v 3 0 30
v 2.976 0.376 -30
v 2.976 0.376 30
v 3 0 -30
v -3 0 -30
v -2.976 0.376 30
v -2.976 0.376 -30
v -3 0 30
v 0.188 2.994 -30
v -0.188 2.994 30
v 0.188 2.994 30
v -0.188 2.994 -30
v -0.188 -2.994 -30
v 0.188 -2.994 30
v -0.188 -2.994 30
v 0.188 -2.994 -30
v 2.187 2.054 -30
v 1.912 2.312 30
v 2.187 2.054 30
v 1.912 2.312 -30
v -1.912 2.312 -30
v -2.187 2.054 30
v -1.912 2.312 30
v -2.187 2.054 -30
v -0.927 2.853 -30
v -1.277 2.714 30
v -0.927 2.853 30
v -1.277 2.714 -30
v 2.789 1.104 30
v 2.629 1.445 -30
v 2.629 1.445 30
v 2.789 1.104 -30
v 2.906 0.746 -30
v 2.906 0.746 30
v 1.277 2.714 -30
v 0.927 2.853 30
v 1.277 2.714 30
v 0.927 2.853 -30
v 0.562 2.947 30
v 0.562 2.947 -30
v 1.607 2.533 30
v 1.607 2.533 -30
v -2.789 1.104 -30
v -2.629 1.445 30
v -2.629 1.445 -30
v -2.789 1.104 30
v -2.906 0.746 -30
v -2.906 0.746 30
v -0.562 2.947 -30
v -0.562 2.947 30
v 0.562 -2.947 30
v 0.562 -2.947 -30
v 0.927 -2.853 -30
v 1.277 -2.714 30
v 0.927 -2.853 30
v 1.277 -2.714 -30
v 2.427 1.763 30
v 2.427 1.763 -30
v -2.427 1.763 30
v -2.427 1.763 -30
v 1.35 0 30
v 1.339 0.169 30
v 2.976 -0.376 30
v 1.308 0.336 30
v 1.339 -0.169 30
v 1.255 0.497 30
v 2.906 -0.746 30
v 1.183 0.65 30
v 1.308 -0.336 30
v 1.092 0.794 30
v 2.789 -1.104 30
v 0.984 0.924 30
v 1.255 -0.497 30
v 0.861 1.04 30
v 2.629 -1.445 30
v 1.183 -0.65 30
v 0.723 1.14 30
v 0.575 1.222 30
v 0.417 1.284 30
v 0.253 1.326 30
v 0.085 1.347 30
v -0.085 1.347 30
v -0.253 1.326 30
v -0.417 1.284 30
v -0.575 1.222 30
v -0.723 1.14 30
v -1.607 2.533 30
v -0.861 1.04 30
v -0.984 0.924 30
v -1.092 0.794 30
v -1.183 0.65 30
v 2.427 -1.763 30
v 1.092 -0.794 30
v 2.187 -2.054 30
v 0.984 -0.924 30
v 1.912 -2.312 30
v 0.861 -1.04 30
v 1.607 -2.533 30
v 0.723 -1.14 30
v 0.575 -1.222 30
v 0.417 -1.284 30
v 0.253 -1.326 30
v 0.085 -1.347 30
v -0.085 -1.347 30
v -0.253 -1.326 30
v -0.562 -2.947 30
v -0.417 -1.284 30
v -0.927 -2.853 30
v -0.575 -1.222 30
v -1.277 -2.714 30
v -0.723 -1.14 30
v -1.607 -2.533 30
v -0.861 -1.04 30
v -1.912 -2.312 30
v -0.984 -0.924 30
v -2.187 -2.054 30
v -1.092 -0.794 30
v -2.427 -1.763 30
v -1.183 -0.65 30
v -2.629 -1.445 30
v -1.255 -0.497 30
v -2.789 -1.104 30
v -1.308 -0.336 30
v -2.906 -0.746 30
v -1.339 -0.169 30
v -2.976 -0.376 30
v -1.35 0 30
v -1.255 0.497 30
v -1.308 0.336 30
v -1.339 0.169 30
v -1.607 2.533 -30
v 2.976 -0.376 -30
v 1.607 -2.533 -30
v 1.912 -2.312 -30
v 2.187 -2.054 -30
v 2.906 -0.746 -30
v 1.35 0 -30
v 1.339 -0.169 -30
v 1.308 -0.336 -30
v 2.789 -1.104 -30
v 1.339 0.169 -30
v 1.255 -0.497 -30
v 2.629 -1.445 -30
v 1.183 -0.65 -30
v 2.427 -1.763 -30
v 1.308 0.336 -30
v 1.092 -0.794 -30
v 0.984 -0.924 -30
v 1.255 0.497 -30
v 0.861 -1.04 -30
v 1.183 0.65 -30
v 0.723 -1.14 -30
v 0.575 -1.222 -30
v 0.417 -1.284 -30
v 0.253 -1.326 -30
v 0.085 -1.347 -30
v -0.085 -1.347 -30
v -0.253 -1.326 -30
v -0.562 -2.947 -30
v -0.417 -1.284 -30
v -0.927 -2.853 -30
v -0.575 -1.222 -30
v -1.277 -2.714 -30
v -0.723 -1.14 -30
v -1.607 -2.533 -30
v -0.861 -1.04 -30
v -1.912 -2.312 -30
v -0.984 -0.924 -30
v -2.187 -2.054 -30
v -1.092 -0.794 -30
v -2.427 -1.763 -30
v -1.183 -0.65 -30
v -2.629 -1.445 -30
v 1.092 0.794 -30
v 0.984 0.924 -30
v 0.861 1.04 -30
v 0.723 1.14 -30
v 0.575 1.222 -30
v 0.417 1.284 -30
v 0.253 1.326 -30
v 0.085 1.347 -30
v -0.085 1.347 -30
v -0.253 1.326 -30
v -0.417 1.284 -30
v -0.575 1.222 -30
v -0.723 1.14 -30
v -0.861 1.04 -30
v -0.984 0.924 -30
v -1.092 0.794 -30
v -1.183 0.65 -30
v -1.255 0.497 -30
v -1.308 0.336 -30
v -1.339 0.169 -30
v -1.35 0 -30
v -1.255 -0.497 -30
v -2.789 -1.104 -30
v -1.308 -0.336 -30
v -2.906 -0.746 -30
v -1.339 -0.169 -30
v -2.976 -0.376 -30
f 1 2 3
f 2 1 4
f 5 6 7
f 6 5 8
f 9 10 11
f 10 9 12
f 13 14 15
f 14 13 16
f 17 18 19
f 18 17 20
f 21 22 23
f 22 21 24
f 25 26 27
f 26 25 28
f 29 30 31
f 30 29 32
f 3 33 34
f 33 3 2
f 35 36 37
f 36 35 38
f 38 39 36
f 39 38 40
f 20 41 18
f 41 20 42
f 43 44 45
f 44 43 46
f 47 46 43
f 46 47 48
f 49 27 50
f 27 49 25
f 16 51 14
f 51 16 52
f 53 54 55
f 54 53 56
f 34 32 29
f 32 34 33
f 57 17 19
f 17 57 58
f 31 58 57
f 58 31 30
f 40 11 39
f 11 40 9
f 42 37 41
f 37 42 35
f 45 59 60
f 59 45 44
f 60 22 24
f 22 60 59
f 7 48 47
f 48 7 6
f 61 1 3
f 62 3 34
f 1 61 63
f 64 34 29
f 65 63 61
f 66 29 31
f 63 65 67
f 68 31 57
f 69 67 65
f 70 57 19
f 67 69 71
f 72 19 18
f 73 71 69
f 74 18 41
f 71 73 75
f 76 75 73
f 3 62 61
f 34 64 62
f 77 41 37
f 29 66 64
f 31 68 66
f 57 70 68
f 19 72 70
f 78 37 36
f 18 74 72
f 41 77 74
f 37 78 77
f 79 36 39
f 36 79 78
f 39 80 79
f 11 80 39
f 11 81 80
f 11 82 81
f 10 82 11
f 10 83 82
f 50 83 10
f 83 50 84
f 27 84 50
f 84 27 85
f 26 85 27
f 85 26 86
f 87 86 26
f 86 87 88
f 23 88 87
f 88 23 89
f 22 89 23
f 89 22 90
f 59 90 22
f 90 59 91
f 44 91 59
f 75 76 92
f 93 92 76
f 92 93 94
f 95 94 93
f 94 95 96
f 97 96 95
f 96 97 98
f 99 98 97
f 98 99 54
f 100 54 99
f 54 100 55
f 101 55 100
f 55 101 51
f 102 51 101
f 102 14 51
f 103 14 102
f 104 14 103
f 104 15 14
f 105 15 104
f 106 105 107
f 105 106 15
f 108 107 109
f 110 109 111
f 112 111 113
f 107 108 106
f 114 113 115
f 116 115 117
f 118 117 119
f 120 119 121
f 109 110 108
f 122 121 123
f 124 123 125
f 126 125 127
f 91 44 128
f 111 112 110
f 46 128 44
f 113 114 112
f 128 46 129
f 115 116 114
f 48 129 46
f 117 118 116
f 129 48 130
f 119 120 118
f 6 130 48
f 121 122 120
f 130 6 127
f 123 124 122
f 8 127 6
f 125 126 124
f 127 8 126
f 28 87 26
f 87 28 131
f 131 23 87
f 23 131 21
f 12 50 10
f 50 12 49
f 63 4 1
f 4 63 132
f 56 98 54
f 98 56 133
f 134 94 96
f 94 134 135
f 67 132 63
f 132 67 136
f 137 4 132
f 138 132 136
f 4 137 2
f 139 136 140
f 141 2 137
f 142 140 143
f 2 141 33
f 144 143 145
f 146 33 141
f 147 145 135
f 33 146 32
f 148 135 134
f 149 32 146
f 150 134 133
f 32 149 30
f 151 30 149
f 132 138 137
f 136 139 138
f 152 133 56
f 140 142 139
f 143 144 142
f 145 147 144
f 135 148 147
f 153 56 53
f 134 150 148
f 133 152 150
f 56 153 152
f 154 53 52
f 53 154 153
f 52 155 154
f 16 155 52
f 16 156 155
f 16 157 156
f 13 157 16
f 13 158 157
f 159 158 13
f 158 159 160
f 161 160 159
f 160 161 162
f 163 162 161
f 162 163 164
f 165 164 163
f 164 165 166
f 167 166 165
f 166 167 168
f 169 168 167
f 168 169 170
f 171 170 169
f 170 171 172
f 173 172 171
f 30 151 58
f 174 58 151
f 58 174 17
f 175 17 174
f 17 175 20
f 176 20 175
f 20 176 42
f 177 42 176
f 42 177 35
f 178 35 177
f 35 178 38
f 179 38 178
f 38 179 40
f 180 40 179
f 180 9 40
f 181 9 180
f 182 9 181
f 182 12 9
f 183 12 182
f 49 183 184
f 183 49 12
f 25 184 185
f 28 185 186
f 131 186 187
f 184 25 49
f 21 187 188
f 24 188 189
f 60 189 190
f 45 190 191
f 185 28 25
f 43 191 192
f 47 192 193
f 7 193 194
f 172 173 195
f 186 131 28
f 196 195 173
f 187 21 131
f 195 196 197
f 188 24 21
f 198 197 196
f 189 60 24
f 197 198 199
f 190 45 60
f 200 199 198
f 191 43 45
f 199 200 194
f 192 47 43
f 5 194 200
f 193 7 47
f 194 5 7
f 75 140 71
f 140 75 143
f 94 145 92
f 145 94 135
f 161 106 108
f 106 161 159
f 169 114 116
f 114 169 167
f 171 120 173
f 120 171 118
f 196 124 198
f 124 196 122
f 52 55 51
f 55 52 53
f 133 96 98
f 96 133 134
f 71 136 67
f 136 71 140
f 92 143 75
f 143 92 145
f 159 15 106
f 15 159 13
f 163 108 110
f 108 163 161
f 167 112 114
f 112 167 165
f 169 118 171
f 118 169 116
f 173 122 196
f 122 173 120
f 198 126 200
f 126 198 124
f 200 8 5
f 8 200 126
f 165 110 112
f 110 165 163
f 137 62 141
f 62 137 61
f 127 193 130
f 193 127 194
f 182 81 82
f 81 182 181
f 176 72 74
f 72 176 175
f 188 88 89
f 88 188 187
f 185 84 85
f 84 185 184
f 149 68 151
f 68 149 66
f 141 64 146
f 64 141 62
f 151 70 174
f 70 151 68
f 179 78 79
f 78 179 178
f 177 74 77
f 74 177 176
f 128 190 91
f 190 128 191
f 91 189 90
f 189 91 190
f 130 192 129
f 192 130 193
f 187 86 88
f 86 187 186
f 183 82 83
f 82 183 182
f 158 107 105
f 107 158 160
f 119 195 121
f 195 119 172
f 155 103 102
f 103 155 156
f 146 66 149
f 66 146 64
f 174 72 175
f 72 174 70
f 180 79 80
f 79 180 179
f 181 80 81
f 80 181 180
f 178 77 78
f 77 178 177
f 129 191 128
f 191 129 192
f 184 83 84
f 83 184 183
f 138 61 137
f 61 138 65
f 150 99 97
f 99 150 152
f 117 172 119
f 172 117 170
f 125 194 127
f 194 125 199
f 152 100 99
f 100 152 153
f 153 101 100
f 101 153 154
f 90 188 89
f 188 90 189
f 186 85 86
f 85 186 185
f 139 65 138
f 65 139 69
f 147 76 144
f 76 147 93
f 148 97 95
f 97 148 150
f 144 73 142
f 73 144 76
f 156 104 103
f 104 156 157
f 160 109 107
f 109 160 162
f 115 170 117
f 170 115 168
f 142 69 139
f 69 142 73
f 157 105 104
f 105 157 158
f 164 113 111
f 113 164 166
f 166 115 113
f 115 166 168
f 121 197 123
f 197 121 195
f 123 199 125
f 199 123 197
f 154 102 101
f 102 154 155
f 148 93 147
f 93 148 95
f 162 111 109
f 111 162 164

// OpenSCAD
$fn = 50;


difference() {
	union() {
		translate(v = [0, 0, -30.0000000000]) {
			cylinder(h = 60, r = 3.0000000000);
		}
	}
	union() {
		translate(v = [0, 0, -100.0000000000]) {
			cylinder(h = 200, r = 1.3500000000);
		}
	}
}
